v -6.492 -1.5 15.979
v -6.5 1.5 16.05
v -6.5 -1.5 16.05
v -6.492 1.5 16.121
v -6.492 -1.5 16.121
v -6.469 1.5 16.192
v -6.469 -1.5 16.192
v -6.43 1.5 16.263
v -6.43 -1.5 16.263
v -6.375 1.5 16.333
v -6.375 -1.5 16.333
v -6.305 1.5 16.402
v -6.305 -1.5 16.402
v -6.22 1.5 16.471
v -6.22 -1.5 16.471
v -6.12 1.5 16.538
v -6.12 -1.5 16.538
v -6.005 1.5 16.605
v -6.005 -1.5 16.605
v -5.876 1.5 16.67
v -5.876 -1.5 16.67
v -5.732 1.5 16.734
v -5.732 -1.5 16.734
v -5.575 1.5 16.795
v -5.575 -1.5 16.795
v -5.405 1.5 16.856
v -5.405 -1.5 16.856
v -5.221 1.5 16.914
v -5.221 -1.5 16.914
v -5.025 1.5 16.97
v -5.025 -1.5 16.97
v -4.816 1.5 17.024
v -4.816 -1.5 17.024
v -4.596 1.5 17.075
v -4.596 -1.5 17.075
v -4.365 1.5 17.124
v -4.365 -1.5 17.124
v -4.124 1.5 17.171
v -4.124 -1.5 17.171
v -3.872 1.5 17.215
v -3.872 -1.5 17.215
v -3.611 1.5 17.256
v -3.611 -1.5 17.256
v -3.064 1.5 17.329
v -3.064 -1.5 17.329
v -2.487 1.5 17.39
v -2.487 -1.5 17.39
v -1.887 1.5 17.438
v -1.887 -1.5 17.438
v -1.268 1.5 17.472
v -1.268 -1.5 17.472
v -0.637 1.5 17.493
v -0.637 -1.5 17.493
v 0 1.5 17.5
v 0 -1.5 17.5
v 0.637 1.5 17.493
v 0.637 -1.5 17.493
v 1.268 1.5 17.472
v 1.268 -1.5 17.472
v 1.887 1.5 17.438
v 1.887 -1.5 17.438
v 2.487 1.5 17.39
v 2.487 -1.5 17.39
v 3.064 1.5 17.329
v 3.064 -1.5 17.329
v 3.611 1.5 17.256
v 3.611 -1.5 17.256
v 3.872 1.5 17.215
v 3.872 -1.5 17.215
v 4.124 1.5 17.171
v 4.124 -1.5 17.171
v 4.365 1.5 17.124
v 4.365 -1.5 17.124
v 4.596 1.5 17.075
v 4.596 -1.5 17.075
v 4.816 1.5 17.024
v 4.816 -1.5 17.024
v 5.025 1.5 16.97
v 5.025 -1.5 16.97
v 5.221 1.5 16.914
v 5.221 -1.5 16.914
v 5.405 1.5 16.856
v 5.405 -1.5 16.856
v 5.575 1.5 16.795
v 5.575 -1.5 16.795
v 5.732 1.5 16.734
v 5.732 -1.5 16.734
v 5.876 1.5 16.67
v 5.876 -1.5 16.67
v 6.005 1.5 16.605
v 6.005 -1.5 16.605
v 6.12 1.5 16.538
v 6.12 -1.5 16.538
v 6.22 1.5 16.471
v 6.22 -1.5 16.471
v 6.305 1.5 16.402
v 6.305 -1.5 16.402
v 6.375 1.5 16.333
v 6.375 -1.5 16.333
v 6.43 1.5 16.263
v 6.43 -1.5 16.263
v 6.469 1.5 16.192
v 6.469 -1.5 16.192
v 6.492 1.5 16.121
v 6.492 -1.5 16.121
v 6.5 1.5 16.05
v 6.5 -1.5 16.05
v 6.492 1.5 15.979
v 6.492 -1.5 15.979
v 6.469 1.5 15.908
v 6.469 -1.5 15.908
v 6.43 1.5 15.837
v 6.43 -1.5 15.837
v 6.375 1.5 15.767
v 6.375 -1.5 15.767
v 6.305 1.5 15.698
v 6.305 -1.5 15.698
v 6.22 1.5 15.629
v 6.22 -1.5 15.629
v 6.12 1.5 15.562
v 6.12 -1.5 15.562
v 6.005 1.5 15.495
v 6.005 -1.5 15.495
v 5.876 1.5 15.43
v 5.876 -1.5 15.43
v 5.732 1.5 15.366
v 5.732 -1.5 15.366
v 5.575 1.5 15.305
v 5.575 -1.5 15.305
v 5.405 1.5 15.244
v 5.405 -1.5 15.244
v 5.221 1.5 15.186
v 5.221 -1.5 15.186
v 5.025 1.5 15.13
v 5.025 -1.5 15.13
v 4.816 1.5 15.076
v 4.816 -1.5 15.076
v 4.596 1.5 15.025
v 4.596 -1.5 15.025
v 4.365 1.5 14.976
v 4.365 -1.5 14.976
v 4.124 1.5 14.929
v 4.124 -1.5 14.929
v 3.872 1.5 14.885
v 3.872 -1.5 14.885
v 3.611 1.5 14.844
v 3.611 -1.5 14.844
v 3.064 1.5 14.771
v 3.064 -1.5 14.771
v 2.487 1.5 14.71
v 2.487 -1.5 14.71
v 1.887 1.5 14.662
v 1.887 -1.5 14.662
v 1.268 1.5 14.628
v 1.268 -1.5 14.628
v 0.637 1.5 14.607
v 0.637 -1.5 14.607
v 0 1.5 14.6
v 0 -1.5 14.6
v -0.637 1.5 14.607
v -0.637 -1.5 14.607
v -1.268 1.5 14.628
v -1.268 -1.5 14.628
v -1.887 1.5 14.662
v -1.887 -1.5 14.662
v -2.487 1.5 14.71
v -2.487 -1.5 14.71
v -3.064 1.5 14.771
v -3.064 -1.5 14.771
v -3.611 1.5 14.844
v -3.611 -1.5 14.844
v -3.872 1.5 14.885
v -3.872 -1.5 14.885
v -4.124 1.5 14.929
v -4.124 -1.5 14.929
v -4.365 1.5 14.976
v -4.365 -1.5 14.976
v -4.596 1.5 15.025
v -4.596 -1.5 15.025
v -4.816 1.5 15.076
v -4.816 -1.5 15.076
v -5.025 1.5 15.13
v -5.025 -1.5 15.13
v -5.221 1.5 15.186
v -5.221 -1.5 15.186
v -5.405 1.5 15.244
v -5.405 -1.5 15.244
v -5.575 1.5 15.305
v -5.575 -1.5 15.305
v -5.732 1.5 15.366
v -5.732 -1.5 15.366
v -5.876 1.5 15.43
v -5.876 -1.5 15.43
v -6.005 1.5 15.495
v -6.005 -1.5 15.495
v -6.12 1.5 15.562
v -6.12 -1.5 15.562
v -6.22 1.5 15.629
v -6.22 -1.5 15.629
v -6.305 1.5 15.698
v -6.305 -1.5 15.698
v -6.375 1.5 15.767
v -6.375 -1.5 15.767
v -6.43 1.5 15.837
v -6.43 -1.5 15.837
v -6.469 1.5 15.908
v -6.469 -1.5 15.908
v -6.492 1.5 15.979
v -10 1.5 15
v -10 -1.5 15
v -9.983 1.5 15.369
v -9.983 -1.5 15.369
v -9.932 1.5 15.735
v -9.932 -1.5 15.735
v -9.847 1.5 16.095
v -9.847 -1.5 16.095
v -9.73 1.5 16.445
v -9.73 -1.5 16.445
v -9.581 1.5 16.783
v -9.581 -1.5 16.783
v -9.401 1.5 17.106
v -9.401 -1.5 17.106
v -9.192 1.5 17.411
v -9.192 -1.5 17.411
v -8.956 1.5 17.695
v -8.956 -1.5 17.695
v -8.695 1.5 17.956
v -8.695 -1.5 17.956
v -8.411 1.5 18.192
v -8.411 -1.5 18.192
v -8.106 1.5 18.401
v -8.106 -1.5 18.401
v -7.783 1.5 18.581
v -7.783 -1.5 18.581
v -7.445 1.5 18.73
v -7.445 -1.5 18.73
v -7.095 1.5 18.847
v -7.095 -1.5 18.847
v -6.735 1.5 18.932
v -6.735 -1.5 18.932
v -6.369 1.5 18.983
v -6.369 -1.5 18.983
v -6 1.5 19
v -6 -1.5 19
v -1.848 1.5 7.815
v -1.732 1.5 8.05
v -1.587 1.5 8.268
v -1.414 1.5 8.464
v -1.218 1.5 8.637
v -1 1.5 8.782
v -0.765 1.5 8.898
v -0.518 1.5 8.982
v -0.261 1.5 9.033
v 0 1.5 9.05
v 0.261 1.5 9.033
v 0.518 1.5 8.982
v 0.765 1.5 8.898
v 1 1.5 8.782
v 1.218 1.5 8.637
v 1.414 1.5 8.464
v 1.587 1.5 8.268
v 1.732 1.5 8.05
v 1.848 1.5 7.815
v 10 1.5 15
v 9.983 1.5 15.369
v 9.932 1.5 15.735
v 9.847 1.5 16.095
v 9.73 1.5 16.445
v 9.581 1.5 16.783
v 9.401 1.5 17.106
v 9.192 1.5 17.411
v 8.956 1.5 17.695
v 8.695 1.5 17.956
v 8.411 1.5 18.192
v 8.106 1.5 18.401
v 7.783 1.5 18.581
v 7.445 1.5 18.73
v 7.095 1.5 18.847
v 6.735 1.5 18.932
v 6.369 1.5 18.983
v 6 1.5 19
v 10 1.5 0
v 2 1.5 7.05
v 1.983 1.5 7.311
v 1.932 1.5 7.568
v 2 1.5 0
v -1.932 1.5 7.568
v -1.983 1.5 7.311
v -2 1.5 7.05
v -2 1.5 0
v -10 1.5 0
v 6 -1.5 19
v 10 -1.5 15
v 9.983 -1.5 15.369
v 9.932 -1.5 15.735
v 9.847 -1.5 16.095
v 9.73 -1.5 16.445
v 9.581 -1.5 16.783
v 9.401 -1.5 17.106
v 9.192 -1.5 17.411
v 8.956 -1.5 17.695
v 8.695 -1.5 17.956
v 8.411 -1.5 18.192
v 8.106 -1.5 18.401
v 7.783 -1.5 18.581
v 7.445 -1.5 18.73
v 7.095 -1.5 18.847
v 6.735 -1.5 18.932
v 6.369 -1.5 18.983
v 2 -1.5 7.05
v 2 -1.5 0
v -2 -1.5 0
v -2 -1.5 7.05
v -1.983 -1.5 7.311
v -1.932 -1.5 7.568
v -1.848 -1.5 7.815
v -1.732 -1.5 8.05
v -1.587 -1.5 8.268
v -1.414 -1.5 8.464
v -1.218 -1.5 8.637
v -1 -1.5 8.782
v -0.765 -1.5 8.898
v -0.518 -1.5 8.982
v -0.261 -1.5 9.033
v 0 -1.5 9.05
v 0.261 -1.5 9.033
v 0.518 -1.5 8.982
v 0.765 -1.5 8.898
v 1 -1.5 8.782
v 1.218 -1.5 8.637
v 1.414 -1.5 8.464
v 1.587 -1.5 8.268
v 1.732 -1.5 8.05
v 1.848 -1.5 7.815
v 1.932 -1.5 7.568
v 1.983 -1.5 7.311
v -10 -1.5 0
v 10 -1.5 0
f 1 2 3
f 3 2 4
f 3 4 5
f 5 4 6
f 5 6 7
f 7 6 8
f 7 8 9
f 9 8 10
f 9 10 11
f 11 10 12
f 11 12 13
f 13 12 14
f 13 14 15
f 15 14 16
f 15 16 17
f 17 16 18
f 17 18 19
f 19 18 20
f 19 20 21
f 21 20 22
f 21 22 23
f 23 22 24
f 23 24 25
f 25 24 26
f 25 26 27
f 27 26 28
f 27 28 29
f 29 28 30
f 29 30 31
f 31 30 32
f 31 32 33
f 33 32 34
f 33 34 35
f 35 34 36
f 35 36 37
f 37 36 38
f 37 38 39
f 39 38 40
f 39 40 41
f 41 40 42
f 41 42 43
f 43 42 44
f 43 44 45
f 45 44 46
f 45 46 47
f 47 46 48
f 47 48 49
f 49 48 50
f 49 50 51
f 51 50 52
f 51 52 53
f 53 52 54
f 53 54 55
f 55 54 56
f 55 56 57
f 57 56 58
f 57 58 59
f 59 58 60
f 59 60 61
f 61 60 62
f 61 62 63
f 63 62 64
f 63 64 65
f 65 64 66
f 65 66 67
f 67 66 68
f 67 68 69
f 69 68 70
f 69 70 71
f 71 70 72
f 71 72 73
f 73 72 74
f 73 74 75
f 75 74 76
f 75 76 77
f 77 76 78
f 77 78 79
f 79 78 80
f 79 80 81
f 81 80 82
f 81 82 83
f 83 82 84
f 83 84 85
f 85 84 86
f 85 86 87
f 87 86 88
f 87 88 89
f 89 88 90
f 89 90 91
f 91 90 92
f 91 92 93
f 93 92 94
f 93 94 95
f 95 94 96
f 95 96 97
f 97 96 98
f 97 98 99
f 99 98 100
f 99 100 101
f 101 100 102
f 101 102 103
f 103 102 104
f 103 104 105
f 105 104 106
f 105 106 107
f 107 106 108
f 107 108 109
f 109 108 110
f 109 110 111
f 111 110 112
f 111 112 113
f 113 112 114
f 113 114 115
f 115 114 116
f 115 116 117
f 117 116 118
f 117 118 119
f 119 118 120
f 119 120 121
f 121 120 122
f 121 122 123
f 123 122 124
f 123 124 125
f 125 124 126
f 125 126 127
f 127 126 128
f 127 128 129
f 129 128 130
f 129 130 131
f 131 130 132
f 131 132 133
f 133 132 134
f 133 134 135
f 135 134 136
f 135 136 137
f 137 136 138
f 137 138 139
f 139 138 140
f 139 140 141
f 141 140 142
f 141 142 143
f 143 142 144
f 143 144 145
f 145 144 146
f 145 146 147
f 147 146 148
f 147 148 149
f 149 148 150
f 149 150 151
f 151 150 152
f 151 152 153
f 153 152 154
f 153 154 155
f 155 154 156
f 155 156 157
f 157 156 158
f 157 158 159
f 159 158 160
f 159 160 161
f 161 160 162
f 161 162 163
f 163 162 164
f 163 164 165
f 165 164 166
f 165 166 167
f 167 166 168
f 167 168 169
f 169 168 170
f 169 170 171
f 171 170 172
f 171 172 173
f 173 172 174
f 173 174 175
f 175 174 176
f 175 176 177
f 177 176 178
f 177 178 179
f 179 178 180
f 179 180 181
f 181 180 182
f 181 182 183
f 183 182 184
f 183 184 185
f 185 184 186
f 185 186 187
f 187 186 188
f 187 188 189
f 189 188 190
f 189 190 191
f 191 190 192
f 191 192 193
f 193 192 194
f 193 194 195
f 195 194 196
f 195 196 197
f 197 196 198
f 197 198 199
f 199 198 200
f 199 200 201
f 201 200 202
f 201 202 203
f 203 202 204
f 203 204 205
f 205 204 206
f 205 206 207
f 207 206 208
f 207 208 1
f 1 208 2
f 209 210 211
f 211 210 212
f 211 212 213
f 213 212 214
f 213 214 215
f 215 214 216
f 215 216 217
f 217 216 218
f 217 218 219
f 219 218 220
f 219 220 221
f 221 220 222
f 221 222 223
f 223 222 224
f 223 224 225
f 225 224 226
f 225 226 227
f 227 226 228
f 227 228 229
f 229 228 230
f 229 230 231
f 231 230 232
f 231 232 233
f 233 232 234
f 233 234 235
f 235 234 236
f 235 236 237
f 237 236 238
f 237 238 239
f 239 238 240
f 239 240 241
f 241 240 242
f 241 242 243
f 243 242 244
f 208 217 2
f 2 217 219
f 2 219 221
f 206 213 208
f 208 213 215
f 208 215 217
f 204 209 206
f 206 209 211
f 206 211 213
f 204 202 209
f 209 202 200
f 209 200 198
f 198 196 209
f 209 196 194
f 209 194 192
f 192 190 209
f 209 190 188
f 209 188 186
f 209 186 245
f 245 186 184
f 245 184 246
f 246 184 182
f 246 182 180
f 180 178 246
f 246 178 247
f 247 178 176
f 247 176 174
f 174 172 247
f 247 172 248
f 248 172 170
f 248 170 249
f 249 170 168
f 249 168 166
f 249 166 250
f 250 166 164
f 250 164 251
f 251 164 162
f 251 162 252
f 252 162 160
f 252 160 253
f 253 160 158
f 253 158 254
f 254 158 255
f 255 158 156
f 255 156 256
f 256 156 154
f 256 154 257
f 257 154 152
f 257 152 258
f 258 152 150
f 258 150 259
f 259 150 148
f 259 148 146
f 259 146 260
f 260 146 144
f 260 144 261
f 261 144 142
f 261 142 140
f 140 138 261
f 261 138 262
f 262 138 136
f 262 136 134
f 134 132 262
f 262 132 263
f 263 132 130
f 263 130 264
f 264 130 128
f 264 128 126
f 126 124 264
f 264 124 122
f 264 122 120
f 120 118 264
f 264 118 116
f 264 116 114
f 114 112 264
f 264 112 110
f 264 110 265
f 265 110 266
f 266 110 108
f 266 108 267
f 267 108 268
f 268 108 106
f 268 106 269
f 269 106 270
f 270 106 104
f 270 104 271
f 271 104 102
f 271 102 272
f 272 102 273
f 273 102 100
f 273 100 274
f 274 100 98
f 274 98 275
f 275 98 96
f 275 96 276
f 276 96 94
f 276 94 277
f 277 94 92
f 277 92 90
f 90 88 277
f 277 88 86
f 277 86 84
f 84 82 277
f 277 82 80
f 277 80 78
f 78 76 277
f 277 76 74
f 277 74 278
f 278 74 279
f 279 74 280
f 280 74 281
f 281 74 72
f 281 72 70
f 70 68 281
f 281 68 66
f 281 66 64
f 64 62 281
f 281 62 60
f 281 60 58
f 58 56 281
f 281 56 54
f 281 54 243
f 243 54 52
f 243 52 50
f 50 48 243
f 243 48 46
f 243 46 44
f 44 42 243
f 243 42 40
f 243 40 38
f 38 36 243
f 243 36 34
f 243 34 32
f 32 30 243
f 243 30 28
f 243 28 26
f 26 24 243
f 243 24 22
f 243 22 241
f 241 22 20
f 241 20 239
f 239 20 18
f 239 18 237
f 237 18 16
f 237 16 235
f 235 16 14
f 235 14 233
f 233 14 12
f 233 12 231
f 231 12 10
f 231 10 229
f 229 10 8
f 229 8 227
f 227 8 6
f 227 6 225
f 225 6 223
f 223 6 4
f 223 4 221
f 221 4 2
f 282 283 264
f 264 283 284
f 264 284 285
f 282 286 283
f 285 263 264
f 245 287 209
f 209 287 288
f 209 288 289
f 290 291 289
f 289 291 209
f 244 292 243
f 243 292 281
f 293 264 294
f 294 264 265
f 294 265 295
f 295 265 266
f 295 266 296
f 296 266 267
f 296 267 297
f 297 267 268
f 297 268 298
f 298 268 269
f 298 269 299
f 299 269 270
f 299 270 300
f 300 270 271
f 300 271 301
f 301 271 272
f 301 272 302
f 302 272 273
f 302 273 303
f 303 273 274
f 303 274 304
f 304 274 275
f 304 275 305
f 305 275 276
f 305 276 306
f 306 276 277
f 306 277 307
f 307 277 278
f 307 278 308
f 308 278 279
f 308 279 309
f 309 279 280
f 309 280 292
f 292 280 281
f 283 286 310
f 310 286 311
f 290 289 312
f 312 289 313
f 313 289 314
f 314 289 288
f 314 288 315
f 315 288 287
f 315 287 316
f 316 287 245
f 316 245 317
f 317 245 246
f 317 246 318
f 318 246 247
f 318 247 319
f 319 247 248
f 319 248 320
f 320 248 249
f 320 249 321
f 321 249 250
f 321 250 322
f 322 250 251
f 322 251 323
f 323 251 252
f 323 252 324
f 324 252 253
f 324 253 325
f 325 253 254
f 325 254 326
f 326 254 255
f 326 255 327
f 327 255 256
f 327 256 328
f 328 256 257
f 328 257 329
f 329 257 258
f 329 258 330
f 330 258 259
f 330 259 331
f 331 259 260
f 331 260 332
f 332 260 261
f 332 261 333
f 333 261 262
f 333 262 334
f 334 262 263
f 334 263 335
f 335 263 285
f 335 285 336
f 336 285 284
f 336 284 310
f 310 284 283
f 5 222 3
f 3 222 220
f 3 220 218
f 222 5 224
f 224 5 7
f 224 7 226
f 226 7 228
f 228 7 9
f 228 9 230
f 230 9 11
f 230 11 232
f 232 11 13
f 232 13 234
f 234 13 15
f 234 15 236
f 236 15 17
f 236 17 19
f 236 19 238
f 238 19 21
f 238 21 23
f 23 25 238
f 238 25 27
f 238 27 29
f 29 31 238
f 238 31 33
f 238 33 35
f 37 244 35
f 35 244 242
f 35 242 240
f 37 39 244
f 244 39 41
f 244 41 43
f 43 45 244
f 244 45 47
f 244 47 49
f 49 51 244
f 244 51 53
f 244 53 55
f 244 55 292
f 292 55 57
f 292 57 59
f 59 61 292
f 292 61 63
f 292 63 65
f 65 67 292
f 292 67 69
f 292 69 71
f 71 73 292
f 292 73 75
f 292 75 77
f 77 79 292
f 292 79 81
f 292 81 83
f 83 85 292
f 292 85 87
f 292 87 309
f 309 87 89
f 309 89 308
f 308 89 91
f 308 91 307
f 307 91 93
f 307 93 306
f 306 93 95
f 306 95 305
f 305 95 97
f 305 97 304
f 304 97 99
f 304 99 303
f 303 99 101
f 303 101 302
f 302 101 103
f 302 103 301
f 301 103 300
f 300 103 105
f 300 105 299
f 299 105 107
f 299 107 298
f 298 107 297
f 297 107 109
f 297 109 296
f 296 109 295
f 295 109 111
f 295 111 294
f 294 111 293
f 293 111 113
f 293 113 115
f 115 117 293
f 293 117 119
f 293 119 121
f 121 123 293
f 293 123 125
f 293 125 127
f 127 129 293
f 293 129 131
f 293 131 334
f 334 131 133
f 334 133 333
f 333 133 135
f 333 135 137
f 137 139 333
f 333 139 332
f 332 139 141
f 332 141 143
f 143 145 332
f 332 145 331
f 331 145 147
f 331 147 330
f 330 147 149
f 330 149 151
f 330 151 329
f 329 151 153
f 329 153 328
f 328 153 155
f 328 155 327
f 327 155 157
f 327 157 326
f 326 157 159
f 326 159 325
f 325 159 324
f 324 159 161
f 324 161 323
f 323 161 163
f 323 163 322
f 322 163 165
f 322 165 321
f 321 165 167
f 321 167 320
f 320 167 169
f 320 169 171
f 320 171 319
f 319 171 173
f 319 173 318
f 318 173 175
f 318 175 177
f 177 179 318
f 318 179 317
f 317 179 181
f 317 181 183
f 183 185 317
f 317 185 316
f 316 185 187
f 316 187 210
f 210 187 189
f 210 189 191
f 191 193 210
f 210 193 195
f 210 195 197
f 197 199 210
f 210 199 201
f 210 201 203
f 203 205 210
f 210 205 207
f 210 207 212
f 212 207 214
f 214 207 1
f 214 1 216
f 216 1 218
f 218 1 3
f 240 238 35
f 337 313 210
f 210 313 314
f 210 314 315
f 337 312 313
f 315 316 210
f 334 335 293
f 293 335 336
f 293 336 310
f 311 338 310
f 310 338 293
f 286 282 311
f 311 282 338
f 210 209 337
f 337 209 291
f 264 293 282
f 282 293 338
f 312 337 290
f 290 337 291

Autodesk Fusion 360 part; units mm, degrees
sketch "Sketch1" plane through (0, 0, 0) normal (0, 0, 1) x (1, 0, 0)
  line L0 (10, 1.5) -> (-10, 1.5)
  line L1 (-10, 1.5) -> (-10, -1.5)
  line L2 (-10, -1.5) -> (10, -1.5)
  line L3 (10, -1.5) -> (10, 1.5)
  dimension "d1" = 20
  dimension "d2" = 3
extrude "Extrude1" add sketch "Sketch1" along normal blind 19
sketch "Sketch2" plane through (0, 1.5, 0) normal (0, 1, 0) x (-1, 0, 0)
  line L0 (-10, 0) -> (10, 0)
  line L1 (10, 0) -> (10, 19)
  line L2 (10, 19) -> (-10, 19)
  line L3 (-10, 19) -> (-10, 0)
  line L4 (0, 9.05) -> (0, 9.05)
  line L5 (-2, 7.05) -> (-2, 0)
  line L6 (2, 7.05) -> (2, 0)
  arc A0 (0, 9.05) -> (-2, 7.05) centre (0, 7.05) ccw
  arc A1 (2, 7.05) -> (0, 9.05) centre (0, 7.05) ccw
  point P0 (0, 9.05)
  dimension "d9" = 2
extrude "Extrude2" cut sketch "Sketch2" against normal blind 3 contours L0 L5 L6 A0 A1
fillet "Fillet1" radius 4 2 edges at (10, 0, 19) (-10, 0, 19)
sketch "Sketch3" plane through (0, 1.5, 0) normal (0, 1, 0) x (-1, 0, 0)
  arc A0 (10, 15) -> (6, 19) centre (6, 15) ccw
  line L0 (6, 19) -> (-6, 19)
  arc A1 (-6, 19) -> (-10, 15) centre (-6, 15) ccw
  line L1 (-10, 15) -> (-10, 0)
  line L2 (-10, 0) -> (-2, 0)
  line L3 (-2, 0) -> (-2, 7.05)
  arc A2 (2, 7.05) -> (-2, 7.05) centre (0, 7.05) ccw
  line L4 (2, 7.05) -> (2, 0)
  line L5 (2, 0) -> (10, 0)
  line L6 (10, 0) -> (10, 15)
  line L7 (0, 19) -> (0, 13.1)
  line L8 (0, 19) -> (0, 17.5)
  line L9 (0, 13.1) -> (0, 14.6)
  ellipse E0 centre (0, 16.05) end of major axis (0, 17.5) minor radius 6.5
  line L10 (0, 14.6) -> (0, 17.5)
  line L11 (6.5, 16.05) -> (-6.5, 16.05)
  dimension "d14" = 5.9
  dimension "d15" = 1.5
  dimension "d16" = 1.5
  dimension "d17" = 13
extrude "Extrude3" cut sketch "Sketch3" against normal blind 3 contours L7 E0 L10 L11 | L7 E0 L10 L11 | L7 E0 L10 L11 | L7 E0 L10 L11
